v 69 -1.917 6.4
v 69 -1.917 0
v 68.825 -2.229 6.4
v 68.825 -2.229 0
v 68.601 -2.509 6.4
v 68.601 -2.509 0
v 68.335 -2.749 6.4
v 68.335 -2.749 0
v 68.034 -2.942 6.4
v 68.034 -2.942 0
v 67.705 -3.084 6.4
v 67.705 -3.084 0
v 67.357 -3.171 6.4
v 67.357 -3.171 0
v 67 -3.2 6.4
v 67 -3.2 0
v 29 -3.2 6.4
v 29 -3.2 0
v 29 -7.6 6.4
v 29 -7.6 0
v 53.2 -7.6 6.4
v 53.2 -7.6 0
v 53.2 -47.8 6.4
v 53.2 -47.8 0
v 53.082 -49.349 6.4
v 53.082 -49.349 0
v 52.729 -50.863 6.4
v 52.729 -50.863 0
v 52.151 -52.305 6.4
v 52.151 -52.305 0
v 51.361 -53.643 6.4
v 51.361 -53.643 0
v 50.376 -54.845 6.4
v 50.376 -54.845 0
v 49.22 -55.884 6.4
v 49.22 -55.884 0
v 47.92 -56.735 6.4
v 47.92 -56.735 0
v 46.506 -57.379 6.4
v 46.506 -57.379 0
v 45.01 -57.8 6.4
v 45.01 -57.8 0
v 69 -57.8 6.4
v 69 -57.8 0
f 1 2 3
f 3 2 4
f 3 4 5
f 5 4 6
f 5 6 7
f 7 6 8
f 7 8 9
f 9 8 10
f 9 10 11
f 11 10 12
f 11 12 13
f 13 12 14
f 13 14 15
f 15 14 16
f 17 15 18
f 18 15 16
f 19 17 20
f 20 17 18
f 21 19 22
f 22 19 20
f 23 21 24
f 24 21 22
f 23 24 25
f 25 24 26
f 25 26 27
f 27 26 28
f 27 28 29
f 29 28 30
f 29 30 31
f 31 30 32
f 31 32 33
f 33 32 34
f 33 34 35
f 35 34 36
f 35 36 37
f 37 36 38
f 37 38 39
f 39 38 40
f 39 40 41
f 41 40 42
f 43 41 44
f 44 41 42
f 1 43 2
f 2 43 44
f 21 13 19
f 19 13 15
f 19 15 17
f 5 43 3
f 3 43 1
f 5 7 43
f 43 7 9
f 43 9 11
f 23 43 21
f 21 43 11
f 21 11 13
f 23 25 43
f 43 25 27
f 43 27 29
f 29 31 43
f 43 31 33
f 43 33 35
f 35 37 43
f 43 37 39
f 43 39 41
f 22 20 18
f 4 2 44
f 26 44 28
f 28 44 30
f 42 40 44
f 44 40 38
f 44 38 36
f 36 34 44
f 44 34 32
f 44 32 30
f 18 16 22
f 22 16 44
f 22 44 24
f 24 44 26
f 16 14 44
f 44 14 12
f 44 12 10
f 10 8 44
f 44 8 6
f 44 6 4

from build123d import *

# Parameters (mm, degrees)
ESTRUSIONE_ESTRUSIONE1_DEPTH = 6.4


with BuildPart() as part:
    # Schizzo1 → Estrusione-Estrusione1 (new body)
    with BuildSketch(Plane.XY):
        with BuildLine():
            Line((29, -3.2), (29, -7.6))
            Line((29, -7.6), (53.2, -7.6))
            Line((53.2, -7.6), (53.2, -47.8))
            ThreePointArc((53.2, -47.8), (50.891189589, -54.262903904), (45.009975124, -57.8))
            Line((45.009975124, -57.8), (69, -57.8))
            Line((69, -57.8), (69, -1.916515139))
            ThreePointArc((69, -1.916515139), (68.188205936, -2.851530894), (67, -3.2))
            Line((67, -3.2), (29, -3.2))
        make_face()
    extrude(amount=ESTRUSIONE_ESTRUSIONE1_DEPTH)


solid = part.part
